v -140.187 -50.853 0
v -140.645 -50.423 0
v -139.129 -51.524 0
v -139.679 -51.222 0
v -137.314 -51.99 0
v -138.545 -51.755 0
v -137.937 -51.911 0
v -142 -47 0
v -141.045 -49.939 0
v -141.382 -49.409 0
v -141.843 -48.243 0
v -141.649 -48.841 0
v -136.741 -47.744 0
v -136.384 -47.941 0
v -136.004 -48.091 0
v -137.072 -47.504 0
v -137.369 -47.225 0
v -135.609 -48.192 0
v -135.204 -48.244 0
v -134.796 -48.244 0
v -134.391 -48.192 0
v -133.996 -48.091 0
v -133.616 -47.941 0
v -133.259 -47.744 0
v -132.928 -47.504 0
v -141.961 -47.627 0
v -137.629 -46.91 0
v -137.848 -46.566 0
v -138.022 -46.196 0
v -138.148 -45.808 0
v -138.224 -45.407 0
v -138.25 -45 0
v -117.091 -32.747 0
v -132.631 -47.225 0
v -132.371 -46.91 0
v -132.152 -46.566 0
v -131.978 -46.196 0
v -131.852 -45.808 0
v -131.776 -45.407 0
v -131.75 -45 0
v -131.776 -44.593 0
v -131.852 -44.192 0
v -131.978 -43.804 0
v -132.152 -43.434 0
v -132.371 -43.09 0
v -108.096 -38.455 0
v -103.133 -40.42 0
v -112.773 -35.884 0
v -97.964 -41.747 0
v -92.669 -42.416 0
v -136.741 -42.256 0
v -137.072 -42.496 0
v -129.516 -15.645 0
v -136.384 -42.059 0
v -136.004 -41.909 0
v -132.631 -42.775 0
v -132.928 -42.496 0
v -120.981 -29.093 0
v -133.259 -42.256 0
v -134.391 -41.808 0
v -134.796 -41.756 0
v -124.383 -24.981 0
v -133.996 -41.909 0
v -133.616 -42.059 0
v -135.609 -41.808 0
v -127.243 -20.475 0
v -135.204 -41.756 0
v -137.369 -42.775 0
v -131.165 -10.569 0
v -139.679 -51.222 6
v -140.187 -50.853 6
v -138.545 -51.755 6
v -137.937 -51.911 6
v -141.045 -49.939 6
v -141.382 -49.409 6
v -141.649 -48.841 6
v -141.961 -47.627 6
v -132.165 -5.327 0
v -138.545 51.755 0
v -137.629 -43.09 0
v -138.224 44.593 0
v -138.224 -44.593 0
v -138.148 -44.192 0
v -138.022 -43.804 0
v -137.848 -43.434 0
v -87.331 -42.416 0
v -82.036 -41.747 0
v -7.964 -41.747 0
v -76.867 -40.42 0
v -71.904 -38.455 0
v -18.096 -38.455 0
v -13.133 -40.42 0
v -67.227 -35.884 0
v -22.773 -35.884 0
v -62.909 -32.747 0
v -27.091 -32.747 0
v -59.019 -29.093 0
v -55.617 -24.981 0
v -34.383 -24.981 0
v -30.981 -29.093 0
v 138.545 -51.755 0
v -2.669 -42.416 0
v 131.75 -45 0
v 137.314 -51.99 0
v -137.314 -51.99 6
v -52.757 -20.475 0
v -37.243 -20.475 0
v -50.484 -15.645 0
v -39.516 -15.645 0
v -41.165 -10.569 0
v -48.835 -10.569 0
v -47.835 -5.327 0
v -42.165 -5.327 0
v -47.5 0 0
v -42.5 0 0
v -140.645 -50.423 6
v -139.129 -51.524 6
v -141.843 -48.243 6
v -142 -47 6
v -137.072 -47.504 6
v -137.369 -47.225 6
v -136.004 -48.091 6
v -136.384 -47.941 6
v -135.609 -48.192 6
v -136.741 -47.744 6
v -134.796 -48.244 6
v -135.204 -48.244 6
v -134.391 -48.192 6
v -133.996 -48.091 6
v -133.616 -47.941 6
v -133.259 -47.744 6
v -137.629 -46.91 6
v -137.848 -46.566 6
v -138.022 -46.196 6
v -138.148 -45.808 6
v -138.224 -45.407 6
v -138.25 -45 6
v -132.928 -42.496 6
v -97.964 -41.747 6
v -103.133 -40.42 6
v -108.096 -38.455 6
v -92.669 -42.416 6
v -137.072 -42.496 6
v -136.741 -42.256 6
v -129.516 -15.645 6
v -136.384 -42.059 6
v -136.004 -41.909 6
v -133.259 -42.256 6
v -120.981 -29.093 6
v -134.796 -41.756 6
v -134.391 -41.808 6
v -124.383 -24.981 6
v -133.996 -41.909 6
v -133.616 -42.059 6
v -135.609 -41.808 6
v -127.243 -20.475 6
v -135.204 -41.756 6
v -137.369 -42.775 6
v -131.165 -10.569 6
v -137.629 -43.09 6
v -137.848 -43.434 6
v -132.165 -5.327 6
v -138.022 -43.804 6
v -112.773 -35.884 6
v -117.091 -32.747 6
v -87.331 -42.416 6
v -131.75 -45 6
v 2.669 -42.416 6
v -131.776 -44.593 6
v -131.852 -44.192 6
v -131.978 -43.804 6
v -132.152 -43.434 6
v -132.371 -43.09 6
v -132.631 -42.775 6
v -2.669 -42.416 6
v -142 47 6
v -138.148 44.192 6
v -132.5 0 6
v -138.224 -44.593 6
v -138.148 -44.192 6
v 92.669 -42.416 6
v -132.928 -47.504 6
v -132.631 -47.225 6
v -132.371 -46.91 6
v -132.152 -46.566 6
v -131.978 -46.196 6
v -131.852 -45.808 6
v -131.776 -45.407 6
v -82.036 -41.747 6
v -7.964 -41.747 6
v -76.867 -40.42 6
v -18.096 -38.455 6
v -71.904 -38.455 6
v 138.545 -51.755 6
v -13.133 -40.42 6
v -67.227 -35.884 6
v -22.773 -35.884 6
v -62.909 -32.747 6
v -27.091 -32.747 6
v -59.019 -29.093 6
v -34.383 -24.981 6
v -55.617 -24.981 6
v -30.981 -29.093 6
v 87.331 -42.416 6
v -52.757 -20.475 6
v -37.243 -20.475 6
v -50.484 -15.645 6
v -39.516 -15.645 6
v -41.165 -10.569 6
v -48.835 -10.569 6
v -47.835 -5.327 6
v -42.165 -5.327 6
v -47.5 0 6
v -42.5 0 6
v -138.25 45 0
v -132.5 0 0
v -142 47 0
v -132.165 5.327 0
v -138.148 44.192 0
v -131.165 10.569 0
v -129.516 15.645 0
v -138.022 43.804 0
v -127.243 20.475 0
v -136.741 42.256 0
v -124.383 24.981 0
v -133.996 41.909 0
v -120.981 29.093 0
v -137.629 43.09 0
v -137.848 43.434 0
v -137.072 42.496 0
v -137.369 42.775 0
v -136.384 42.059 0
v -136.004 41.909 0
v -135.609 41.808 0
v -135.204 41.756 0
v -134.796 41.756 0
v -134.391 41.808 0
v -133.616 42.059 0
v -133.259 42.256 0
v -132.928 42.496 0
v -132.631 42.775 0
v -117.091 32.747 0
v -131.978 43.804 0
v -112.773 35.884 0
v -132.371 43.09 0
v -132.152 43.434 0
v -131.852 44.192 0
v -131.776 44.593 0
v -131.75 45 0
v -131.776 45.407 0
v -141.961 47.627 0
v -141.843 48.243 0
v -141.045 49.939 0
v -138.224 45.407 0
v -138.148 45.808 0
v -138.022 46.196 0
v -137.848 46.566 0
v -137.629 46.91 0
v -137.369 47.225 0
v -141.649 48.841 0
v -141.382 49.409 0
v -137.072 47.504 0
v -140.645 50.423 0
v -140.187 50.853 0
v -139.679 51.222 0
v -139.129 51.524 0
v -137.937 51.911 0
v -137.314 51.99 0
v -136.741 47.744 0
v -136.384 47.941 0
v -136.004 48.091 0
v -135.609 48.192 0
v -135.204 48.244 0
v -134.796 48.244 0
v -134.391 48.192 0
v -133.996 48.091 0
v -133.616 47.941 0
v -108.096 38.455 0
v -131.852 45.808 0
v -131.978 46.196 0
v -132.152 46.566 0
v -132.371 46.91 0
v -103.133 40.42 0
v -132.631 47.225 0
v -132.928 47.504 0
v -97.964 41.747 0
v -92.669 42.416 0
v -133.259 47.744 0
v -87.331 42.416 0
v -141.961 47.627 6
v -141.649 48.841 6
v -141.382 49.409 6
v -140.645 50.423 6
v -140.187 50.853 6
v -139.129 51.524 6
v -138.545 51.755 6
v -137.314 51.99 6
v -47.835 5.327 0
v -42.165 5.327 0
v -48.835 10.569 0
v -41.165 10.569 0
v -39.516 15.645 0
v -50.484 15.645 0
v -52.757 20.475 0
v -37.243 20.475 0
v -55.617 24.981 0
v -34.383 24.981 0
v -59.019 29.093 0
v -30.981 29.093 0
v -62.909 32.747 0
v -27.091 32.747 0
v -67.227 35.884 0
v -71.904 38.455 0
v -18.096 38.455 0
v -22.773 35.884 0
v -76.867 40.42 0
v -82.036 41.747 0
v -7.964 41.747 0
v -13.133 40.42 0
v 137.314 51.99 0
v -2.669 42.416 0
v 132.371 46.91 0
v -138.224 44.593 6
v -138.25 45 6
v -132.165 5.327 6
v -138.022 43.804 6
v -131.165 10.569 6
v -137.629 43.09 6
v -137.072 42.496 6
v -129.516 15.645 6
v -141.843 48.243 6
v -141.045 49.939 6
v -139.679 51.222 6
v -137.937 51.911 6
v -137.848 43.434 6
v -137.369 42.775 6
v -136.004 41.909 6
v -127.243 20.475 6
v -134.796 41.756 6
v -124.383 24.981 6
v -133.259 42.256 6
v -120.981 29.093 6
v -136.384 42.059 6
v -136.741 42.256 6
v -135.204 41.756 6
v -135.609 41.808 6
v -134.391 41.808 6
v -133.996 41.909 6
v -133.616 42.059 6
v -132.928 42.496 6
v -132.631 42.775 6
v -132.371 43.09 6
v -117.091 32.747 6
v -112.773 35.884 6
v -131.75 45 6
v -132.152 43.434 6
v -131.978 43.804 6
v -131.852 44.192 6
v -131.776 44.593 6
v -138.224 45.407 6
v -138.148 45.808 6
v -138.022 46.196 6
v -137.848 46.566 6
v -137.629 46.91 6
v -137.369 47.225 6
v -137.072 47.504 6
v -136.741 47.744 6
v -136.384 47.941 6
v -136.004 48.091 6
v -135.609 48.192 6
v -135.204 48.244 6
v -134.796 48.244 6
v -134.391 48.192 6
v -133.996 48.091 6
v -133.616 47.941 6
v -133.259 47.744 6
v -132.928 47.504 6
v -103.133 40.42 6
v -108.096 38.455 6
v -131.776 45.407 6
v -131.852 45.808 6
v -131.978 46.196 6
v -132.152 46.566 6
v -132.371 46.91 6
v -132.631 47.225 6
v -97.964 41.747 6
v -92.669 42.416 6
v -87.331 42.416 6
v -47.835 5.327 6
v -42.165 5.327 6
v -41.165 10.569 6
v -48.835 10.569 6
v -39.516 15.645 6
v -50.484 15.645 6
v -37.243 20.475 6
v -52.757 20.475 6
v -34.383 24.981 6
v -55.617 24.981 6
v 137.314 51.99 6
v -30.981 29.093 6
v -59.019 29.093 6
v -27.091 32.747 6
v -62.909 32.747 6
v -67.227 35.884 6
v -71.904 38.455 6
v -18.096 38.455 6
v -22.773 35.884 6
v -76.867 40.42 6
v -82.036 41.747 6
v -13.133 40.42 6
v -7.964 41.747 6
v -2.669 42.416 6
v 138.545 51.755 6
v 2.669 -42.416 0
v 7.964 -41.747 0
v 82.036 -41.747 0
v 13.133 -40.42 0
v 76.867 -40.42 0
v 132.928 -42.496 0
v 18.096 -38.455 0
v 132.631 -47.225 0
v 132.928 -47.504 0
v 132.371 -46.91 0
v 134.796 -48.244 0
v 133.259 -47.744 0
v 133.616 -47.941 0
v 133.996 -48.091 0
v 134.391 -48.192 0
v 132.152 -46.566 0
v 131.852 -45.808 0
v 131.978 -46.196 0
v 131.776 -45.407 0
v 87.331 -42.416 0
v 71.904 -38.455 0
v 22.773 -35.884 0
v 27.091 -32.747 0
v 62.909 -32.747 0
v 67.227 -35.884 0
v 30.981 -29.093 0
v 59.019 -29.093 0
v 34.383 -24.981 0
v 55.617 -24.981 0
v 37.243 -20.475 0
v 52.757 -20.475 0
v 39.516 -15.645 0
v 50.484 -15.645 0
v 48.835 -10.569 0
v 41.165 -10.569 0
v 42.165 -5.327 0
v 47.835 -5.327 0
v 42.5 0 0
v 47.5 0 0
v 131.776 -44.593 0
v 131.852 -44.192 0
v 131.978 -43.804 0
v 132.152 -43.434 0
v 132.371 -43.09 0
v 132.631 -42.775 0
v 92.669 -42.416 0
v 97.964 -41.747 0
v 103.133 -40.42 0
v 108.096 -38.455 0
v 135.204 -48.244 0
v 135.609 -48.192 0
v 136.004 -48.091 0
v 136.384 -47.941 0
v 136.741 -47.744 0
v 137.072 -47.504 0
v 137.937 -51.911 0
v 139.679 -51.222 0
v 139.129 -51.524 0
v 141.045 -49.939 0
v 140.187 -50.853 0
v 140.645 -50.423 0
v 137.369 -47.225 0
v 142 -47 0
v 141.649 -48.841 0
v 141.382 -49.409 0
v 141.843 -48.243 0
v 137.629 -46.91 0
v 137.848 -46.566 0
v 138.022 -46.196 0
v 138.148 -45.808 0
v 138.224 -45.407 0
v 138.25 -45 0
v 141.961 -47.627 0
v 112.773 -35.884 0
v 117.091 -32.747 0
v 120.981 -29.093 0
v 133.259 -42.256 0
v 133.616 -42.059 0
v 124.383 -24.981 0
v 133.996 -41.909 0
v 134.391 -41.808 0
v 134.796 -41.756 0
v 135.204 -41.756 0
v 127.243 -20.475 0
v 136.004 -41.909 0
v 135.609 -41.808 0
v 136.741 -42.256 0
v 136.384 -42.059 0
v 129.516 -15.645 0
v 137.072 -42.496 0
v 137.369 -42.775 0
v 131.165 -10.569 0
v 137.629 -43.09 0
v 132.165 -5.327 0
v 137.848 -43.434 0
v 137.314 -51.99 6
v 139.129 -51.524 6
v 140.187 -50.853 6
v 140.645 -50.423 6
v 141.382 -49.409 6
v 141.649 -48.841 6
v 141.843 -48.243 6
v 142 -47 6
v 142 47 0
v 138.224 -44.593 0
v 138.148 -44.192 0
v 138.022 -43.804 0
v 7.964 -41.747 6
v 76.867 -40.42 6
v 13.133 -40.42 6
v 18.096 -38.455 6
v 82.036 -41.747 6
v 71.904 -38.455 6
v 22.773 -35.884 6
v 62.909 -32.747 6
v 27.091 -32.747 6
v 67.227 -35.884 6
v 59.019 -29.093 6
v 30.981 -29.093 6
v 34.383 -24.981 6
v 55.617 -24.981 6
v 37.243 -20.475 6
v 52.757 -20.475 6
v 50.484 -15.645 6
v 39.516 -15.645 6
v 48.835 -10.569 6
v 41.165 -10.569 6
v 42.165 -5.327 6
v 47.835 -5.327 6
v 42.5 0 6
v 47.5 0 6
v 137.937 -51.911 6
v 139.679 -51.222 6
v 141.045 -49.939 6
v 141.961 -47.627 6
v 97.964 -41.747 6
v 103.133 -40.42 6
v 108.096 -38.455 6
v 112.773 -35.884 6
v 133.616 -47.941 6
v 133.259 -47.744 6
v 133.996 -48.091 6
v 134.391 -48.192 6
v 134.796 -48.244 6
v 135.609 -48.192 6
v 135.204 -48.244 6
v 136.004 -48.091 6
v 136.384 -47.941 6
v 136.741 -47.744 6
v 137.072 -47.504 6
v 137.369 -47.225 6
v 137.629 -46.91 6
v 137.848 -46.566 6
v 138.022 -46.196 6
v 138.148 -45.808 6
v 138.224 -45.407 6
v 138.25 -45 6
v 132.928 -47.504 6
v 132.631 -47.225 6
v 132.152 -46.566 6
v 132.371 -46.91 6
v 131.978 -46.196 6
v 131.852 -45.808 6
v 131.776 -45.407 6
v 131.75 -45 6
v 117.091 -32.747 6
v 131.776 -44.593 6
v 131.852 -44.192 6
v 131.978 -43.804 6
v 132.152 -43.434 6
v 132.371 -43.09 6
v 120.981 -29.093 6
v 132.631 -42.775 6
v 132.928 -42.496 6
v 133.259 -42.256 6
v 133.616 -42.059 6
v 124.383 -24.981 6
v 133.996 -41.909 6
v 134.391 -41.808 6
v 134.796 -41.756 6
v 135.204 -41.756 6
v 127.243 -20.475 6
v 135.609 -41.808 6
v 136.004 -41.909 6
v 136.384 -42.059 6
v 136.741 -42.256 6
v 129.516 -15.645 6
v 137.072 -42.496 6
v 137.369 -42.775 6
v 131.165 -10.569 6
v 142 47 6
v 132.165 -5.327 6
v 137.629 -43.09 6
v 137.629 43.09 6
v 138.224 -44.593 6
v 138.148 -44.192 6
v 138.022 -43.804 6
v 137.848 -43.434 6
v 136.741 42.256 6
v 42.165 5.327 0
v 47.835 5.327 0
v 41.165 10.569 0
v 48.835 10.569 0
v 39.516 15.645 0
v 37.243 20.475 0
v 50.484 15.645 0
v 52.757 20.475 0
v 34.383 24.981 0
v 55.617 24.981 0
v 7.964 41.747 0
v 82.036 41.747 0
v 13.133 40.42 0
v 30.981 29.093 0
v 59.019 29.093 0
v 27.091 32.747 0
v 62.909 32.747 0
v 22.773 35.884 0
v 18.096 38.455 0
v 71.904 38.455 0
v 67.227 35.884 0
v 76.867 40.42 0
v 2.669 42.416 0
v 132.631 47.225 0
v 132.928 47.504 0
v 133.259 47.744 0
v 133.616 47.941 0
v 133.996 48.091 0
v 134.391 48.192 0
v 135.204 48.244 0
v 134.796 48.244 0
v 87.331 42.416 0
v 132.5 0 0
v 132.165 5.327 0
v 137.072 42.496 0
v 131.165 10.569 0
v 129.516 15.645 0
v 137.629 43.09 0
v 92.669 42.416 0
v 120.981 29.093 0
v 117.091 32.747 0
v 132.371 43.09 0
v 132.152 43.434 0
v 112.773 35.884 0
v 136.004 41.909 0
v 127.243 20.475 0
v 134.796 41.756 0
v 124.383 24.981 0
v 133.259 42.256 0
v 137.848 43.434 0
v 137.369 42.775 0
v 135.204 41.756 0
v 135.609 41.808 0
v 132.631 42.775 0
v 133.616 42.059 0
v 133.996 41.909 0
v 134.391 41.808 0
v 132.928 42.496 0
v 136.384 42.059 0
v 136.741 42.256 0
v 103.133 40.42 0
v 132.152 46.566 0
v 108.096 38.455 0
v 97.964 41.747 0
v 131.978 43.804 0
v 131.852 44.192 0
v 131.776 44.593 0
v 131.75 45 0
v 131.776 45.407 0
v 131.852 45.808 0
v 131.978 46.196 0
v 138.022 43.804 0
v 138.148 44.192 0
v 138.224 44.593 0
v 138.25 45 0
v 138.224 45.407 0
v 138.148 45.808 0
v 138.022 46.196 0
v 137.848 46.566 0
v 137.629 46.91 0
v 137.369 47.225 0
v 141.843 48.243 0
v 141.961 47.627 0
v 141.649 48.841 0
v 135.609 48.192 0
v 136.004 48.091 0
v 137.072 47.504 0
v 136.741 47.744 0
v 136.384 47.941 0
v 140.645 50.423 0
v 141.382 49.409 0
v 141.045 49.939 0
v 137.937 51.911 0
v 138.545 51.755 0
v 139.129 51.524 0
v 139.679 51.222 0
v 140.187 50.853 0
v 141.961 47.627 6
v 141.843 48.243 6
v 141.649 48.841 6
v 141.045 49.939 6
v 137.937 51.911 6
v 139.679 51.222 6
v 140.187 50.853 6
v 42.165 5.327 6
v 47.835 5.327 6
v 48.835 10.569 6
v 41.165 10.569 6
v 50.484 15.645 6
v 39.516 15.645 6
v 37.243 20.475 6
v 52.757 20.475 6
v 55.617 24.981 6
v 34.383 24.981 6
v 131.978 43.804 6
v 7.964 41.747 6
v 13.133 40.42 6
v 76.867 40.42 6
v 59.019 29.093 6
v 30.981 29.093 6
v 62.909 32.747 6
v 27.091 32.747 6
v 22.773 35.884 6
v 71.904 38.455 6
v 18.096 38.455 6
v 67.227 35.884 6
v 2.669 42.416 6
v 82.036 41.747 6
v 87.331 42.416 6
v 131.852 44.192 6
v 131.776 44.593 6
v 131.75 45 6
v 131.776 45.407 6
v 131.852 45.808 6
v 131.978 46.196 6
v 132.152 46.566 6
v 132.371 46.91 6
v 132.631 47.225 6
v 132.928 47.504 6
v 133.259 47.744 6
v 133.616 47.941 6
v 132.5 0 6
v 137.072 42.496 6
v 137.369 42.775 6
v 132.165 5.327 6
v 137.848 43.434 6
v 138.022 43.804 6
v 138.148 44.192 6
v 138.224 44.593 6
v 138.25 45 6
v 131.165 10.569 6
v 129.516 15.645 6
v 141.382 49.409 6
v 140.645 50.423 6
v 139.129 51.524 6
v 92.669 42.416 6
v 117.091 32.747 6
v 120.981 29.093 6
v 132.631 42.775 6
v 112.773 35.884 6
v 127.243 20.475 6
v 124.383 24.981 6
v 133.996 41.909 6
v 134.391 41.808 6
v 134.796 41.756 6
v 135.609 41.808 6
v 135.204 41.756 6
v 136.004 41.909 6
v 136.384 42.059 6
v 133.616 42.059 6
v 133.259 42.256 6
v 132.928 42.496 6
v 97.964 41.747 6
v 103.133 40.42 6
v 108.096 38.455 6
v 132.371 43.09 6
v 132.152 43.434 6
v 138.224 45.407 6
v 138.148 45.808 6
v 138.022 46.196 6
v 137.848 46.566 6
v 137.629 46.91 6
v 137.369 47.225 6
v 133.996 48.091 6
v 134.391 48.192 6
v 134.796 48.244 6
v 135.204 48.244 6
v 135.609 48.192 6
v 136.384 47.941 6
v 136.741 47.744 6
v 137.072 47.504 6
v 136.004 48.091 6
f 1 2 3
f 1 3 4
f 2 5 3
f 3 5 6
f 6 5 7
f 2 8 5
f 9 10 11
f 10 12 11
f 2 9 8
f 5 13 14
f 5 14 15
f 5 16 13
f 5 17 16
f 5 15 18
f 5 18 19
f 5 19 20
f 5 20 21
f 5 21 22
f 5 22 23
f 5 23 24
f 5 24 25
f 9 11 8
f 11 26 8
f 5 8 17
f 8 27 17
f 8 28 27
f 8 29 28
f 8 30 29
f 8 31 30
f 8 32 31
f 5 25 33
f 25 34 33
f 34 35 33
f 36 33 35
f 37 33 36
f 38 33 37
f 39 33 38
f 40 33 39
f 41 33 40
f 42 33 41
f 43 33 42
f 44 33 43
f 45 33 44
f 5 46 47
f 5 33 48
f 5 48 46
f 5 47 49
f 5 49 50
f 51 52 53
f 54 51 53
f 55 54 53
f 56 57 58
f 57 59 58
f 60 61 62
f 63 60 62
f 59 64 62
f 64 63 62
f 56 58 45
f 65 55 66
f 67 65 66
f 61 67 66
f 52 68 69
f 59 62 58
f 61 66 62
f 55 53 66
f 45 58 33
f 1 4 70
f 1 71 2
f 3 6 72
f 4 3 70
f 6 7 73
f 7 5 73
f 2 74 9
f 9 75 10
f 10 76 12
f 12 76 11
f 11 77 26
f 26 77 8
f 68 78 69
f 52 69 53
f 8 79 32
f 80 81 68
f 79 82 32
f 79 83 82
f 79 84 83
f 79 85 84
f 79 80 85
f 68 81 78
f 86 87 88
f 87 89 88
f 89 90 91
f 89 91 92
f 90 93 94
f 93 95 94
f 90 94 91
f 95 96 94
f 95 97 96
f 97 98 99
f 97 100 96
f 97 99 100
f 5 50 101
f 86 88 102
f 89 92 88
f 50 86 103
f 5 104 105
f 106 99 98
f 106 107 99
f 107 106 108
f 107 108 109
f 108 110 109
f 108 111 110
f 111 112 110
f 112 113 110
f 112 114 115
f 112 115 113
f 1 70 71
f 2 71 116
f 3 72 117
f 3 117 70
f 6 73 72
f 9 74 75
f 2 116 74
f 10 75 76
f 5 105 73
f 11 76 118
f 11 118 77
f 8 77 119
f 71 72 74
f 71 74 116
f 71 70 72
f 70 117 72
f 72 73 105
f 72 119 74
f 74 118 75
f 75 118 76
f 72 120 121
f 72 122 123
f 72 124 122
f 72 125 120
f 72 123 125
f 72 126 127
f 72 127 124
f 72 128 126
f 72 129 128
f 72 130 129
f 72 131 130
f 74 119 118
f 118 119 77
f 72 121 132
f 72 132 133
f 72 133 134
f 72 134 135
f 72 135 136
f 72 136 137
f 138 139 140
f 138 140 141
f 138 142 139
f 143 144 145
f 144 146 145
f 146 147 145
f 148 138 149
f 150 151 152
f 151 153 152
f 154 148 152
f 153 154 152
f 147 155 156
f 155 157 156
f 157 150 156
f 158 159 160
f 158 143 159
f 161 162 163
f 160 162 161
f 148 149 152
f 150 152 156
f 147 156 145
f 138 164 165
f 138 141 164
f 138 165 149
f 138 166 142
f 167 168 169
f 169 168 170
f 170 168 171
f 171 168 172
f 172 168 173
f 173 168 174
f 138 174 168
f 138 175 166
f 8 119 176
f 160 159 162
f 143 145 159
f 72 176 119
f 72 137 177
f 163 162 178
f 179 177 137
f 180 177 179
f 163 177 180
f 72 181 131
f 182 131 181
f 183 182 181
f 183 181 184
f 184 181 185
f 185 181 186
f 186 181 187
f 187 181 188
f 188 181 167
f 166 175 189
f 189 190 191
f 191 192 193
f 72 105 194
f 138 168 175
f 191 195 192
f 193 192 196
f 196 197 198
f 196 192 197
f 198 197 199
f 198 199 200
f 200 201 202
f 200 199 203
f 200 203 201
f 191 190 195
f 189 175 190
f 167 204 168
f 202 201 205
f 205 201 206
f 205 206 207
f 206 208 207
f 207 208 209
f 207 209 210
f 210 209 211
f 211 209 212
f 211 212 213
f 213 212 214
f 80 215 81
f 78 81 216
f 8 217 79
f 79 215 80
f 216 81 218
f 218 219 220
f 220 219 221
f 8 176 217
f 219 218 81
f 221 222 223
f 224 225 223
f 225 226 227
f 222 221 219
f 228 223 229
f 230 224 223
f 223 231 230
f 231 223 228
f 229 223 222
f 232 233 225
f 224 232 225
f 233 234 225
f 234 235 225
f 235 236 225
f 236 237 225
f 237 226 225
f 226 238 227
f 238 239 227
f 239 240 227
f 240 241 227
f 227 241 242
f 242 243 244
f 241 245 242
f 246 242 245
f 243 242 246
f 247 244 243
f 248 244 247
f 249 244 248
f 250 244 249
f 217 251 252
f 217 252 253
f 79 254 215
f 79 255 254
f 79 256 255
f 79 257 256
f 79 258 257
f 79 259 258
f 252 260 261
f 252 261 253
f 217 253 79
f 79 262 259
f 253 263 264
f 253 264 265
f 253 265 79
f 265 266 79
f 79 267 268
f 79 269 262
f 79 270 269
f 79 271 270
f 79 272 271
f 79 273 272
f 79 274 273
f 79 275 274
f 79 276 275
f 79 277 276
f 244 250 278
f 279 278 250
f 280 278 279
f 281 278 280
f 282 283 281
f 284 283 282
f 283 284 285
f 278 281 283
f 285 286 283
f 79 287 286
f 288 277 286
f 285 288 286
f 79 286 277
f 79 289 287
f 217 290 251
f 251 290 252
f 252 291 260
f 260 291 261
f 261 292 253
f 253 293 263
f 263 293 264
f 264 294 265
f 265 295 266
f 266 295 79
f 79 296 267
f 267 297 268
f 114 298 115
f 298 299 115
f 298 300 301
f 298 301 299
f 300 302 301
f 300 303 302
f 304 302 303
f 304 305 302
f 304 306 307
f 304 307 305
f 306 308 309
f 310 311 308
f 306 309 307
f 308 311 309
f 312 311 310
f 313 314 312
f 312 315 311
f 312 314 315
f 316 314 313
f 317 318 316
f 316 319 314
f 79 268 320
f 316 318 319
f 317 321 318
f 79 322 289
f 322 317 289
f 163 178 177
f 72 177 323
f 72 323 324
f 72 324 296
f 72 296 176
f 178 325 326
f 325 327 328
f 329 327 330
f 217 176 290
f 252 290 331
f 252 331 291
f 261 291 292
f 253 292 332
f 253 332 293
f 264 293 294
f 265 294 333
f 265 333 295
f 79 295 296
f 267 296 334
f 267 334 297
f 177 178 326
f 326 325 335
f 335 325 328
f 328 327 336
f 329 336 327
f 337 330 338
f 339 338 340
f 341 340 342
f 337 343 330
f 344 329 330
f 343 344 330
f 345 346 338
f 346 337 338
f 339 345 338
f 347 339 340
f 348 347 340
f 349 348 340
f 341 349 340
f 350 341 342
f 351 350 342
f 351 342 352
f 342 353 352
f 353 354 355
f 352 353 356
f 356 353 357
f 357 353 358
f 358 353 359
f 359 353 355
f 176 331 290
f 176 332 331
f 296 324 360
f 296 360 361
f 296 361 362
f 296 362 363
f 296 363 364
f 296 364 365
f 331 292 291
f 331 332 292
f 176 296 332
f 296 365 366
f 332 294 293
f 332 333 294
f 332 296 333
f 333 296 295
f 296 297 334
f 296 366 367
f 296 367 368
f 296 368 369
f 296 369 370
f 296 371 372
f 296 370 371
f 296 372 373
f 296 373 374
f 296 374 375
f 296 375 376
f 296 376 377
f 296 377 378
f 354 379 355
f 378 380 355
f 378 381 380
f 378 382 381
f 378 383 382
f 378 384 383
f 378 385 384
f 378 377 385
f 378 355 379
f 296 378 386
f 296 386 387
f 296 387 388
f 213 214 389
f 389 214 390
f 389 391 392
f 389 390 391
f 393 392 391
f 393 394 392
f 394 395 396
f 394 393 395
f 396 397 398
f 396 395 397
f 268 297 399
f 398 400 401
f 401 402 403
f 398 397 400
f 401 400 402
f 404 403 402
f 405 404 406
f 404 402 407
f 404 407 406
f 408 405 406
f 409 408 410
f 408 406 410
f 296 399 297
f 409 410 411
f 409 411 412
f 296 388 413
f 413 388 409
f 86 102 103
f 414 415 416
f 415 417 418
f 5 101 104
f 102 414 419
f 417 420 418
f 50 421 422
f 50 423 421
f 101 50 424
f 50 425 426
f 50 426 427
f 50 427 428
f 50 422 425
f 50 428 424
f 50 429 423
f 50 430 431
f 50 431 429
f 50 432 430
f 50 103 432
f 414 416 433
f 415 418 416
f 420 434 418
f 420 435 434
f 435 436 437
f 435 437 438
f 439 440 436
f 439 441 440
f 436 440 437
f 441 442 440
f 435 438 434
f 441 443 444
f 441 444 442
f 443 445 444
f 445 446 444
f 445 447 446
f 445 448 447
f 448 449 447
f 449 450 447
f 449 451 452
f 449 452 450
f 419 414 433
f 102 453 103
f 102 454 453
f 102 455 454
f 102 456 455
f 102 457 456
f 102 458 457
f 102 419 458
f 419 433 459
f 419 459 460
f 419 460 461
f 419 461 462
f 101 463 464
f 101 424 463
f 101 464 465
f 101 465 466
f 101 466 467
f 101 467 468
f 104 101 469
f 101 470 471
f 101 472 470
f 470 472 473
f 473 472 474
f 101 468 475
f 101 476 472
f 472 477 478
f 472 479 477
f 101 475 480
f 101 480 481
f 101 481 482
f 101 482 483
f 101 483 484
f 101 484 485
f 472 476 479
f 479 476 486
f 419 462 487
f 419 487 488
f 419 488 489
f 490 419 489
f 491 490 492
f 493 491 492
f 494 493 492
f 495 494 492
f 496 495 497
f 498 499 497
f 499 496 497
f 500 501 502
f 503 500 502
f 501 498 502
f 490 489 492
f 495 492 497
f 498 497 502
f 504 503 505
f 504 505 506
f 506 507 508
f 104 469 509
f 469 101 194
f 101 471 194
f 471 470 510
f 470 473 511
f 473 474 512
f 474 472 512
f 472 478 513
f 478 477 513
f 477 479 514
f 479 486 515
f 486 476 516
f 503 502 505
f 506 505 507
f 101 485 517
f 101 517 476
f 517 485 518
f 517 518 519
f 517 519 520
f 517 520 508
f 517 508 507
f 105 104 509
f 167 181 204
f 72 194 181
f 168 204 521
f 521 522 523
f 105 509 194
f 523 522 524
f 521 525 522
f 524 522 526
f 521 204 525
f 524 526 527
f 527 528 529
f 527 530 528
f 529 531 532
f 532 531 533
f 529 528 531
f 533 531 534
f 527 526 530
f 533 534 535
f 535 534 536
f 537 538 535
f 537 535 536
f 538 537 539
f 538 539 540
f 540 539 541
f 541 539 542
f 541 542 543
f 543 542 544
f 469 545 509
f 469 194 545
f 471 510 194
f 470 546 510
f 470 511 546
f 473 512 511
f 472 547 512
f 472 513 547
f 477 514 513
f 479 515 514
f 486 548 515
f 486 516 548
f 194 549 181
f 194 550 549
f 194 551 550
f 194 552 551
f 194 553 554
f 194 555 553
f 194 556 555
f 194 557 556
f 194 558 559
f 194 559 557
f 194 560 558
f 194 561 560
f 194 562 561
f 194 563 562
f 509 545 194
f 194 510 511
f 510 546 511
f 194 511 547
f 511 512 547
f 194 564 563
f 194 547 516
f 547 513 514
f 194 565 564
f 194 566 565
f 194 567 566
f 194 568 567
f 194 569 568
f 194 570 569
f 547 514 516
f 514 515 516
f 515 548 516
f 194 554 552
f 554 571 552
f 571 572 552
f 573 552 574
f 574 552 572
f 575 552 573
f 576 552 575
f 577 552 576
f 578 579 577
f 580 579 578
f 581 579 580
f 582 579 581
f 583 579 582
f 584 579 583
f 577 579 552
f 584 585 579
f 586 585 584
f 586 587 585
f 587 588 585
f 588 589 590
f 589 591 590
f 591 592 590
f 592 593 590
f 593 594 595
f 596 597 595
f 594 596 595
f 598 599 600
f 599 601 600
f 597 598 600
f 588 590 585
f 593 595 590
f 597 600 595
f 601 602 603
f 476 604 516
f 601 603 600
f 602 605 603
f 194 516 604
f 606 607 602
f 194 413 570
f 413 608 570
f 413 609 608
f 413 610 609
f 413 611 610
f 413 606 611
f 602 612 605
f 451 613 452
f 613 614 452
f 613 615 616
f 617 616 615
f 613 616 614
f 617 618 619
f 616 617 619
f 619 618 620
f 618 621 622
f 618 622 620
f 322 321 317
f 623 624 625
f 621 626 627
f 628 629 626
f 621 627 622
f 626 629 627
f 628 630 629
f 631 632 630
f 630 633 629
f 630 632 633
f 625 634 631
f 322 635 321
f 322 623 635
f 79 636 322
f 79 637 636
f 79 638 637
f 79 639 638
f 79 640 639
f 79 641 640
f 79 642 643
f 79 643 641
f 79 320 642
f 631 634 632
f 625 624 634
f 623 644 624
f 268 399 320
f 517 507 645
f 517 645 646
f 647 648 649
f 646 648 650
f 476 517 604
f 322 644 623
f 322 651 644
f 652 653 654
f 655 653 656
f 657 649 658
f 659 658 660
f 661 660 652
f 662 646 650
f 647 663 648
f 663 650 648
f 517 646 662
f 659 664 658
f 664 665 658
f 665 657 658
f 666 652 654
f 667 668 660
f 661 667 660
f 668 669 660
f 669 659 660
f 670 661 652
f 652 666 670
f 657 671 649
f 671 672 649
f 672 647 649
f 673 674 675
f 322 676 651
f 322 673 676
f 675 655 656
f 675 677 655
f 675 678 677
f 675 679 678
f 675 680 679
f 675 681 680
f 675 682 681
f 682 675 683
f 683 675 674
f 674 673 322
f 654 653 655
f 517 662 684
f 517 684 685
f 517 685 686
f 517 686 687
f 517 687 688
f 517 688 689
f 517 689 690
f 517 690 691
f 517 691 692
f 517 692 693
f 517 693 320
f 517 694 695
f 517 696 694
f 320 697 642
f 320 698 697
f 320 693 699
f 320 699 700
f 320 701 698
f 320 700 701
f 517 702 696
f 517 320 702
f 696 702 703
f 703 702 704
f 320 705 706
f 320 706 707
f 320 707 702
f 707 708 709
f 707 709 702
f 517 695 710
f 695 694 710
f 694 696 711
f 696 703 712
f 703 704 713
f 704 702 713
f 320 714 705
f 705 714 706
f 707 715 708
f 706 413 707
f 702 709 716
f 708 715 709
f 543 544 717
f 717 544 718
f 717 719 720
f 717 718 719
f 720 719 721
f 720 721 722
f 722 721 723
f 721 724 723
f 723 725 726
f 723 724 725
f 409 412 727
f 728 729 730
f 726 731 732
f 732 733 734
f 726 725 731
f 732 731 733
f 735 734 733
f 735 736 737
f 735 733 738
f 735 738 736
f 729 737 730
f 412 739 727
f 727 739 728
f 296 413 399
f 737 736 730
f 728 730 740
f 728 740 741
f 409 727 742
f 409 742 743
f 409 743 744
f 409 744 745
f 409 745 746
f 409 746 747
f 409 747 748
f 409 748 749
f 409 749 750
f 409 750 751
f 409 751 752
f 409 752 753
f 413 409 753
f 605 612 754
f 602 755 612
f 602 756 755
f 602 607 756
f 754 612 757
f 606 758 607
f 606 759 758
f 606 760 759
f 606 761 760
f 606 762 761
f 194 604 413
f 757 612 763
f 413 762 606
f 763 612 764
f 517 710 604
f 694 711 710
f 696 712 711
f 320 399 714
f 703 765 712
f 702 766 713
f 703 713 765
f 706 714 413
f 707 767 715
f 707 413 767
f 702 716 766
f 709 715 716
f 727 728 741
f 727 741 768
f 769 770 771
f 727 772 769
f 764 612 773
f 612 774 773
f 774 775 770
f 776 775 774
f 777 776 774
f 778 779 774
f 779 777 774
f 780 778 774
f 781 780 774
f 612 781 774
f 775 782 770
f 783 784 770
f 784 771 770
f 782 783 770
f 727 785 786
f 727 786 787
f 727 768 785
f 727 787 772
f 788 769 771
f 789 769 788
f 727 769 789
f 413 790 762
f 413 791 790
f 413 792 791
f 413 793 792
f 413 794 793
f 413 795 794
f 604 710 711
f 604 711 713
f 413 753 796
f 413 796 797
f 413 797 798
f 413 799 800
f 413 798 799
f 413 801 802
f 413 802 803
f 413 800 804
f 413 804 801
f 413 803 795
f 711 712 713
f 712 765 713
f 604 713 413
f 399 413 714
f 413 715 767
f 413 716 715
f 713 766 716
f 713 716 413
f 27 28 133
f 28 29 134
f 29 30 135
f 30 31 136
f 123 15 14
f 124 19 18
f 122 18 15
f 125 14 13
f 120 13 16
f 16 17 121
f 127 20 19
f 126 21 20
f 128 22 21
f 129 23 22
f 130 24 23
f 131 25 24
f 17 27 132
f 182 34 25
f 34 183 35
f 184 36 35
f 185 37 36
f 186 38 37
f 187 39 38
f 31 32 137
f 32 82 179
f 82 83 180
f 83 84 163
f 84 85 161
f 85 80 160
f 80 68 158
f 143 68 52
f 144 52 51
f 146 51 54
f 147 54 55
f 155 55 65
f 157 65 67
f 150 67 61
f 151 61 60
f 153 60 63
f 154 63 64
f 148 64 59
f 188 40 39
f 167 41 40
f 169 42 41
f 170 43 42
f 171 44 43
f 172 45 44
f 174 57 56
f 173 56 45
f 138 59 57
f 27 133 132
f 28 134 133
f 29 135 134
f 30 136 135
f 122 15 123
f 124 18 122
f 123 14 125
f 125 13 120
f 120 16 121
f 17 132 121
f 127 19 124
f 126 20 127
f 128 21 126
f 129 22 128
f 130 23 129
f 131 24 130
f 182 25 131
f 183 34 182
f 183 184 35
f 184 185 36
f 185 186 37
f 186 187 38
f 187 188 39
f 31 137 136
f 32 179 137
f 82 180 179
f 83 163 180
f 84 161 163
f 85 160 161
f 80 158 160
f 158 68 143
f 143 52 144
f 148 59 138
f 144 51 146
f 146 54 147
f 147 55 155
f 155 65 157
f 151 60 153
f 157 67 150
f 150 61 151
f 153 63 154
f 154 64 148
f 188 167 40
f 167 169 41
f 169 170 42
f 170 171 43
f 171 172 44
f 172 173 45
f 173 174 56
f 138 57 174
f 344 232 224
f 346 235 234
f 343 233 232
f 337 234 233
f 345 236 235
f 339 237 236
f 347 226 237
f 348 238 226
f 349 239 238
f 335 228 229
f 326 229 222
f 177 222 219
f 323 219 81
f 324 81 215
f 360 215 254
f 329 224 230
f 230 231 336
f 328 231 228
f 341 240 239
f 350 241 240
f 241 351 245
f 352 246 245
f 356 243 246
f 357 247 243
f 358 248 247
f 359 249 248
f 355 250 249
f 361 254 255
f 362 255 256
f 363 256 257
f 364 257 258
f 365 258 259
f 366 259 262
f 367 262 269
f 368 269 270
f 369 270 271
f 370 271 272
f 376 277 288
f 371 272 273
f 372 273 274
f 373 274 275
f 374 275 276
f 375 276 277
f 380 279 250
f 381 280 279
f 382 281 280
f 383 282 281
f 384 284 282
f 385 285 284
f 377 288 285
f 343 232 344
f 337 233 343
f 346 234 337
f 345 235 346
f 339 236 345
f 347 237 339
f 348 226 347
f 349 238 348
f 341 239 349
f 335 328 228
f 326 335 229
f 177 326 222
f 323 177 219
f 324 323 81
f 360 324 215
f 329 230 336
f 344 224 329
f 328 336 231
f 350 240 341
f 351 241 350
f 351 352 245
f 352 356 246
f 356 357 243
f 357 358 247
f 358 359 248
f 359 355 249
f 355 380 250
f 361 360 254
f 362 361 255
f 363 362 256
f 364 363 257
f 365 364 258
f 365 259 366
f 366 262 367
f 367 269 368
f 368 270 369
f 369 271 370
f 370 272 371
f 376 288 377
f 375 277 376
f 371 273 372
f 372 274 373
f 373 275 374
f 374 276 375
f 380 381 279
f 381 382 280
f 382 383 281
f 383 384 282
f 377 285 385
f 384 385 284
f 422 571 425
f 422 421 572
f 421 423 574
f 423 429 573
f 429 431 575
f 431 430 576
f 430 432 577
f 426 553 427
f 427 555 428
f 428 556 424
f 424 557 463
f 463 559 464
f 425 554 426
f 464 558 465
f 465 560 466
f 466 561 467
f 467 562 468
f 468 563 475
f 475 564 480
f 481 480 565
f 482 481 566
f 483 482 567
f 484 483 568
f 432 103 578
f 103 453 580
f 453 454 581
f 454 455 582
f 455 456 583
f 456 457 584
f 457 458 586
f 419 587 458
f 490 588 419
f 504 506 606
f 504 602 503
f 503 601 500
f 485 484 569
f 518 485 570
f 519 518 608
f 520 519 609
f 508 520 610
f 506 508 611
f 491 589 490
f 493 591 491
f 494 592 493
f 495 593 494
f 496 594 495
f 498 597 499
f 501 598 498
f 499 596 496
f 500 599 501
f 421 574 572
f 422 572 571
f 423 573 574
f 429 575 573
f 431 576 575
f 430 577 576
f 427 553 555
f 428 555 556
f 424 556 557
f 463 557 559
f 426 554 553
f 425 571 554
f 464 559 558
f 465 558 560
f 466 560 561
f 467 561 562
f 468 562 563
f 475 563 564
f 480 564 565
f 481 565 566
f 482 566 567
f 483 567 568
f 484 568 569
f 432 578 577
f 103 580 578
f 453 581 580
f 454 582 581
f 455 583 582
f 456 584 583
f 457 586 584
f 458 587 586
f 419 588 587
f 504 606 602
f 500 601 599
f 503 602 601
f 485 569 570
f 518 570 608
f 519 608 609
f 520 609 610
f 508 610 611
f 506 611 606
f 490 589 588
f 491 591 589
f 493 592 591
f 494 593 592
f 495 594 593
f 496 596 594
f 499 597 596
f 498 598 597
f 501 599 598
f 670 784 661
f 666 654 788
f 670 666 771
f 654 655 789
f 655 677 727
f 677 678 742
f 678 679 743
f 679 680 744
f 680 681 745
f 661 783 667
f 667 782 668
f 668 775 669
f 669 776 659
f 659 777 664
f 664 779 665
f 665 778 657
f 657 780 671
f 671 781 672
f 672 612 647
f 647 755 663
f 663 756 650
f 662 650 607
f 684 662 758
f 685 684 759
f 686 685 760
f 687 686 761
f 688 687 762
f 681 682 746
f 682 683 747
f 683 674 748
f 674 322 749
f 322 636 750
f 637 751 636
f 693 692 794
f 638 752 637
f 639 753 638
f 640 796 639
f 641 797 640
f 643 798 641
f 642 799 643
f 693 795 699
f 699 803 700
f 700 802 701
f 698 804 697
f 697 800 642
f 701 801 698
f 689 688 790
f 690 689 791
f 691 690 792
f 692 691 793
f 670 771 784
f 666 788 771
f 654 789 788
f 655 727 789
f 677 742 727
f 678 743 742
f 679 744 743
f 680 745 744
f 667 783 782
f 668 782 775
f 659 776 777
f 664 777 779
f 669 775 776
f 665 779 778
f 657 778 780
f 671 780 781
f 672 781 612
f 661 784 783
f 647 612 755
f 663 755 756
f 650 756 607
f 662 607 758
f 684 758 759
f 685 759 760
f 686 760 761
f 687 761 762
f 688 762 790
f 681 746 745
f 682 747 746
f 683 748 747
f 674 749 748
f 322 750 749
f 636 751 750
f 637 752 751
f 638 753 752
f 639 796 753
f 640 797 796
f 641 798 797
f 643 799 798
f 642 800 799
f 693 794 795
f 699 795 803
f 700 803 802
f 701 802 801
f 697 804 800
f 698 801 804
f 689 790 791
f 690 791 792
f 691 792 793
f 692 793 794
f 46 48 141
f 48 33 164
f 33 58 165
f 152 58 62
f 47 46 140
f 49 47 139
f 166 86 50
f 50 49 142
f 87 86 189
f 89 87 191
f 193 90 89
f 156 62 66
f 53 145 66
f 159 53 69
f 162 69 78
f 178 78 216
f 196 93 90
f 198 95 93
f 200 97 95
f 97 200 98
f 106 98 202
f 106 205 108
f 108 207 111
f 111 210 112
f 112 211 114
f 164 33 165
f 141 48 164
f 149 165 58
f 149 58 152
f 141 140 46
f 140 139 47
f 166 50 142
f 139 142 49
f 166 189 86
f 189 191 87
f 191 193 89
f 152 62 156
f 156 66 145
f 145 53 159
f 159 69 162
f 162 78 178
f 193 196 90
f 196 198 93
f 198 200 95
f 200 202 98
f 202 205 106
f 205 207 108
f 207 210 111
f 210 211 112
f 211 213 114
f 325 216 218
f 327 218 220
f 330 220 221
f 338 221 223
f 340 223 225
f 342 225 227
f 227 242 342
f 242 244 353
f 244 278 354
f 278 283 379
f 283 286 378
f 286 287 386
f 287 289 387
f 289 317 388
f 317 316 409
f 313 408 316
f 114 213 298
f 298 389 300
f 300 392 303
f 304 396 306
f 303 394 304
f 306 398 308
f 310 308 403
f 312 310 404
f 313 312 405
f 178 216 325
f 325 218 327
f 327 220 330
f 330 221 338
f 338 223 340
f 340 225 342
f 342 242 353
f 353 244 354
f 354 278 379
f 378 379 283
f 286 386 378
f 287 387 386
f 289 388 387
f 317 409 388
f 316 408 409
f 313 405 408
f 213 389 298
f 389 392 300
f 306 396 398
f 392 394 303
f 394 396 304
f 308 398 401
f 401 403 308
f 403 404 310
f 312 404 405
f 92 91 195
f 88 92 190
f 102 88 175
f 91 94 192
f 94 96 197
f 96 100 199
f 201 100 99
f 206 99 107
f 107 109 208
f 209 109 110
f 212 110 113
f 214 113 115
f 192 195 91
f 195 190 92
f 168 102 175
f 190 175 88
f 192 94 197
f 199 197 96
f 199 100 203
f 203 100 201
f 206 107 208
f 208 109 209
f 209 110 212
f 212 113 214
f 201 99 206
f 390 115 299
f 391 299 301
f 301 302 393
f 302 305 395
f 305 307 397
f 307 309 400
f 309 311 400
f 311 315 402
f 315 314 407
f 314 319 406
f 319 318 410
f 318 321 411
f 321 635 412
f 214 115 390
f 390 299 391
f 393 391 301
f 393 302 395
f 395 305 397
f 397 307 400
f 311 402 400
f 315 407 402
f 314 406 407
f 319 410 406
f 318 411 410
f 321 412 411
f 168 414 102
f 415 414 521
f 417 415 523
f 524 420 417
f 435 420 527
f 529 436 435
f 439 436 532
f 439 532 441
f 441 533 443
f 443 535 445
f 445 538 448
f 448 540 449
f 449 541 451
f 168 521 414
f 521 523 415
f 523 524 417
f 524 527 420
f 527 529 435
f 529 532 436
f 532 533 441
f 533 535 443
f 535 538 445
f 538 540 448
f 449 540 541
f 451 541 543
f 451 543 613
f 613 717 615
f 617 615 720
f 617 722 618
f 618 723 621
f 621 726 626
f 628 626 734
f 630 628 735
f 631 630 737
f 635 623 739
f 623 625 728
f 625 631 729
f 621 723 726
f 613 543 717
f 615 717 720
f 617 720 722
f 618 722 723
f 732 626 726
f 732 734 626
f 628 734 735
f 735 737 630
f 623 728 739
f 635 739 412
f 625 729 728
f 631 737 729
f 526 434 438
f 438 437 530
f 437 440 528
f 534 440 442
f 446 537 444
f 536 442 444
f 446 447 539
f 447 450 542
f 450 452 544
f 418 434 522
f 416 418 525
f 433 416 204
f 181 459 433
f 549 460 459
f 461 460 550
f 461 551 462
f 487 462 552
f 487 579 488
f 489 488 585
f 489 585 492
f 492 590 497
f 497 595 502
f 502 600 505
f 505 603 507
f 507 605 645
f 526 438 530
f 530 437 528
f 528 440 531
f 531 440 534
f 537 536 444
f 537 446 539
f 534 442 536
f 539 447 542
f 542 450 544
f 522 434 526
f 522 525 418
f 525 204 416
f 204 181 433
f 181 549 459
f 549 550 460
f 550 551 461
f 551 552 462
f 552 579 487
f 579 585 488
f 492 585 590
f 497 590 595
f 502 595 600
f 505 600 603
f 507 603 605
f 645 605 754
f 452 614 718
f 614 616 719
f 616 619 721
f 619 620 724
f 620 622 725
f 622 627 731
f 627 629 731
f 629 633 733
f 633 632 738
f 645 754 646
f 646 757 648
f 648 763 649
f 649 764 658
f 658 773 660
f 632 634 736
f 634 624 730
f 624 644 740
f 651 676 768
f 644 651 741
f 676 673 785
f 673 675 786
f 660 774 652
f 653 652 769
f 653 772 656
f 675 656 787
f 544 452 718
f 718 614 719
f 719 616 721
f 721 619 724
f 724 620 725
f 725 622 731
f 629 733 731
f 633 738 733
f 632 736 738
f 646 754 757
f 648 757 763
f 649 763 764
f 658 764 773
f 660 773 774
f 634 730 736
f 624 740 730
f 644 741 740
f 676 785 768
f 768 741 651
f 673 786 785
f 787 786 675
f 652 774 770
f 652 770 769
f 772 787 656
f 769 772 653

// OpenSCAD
$fn = 50;

difference() {
	union() {
		hull() {
			translate(v = [-137.0, 47.0, 0]) {
				cylinder(h = 6, r = 5);
			}
			translate(v = [137.0, 47.0, 0]) {
				cylinder(h = 6, r = 5);
			}
			translate(v = [-137.0, -47.0, 0]) {
				cylinder(h = 6, r = 5);
			}
			translate(v = [137.0, -47.0, 0]) {
				cylinder(h = 6, r = 5);
			}
		}
	}
	union() {
		translate(v = [-135.0, -45.0, -100.0]) {
			cylinder(h = 200, r = 3.25);
		}
		translate(v = [-135.0, 45.0, -100.0]) {
			cylinder(h = 200, r = 3.25);
		}
		translate(v = [135.0, -45.0, -100.0]) {
			cylinder(h = 200, r = 3.25);
		}
		translate(v = [135.0, 45.0, -100.0]) {
			cylinder(h = 200, r = 3.25);
		}
		translate(v = [-135.0, -45.0, -100.0]) {
			cylinder(h = 200, r = 1.8);
		}
		translate(v = [-135.0, 45.0, -100.0]) {
			cylinder(h = 200, r = 1.8);
		}
		translate(v = [135.0, -45.0, -100.0]) {
			cylinder(h = 200, r = 1.8);
		}
		translate(v = [135.0, 45.0, -100.0]) {
			cylinder(h = 200, r = 1.8);
		}
		translate(v = [-90.0, 0, 0.0]) {
			cylinder(h = 6, r = 42.5);
		}
		cylinder(h = 6, r = 42.5);
		translate(v = [90.0, 0, 0.0]) {
			cylinder(h = 6, r = 42.5);
		}
	}
}
